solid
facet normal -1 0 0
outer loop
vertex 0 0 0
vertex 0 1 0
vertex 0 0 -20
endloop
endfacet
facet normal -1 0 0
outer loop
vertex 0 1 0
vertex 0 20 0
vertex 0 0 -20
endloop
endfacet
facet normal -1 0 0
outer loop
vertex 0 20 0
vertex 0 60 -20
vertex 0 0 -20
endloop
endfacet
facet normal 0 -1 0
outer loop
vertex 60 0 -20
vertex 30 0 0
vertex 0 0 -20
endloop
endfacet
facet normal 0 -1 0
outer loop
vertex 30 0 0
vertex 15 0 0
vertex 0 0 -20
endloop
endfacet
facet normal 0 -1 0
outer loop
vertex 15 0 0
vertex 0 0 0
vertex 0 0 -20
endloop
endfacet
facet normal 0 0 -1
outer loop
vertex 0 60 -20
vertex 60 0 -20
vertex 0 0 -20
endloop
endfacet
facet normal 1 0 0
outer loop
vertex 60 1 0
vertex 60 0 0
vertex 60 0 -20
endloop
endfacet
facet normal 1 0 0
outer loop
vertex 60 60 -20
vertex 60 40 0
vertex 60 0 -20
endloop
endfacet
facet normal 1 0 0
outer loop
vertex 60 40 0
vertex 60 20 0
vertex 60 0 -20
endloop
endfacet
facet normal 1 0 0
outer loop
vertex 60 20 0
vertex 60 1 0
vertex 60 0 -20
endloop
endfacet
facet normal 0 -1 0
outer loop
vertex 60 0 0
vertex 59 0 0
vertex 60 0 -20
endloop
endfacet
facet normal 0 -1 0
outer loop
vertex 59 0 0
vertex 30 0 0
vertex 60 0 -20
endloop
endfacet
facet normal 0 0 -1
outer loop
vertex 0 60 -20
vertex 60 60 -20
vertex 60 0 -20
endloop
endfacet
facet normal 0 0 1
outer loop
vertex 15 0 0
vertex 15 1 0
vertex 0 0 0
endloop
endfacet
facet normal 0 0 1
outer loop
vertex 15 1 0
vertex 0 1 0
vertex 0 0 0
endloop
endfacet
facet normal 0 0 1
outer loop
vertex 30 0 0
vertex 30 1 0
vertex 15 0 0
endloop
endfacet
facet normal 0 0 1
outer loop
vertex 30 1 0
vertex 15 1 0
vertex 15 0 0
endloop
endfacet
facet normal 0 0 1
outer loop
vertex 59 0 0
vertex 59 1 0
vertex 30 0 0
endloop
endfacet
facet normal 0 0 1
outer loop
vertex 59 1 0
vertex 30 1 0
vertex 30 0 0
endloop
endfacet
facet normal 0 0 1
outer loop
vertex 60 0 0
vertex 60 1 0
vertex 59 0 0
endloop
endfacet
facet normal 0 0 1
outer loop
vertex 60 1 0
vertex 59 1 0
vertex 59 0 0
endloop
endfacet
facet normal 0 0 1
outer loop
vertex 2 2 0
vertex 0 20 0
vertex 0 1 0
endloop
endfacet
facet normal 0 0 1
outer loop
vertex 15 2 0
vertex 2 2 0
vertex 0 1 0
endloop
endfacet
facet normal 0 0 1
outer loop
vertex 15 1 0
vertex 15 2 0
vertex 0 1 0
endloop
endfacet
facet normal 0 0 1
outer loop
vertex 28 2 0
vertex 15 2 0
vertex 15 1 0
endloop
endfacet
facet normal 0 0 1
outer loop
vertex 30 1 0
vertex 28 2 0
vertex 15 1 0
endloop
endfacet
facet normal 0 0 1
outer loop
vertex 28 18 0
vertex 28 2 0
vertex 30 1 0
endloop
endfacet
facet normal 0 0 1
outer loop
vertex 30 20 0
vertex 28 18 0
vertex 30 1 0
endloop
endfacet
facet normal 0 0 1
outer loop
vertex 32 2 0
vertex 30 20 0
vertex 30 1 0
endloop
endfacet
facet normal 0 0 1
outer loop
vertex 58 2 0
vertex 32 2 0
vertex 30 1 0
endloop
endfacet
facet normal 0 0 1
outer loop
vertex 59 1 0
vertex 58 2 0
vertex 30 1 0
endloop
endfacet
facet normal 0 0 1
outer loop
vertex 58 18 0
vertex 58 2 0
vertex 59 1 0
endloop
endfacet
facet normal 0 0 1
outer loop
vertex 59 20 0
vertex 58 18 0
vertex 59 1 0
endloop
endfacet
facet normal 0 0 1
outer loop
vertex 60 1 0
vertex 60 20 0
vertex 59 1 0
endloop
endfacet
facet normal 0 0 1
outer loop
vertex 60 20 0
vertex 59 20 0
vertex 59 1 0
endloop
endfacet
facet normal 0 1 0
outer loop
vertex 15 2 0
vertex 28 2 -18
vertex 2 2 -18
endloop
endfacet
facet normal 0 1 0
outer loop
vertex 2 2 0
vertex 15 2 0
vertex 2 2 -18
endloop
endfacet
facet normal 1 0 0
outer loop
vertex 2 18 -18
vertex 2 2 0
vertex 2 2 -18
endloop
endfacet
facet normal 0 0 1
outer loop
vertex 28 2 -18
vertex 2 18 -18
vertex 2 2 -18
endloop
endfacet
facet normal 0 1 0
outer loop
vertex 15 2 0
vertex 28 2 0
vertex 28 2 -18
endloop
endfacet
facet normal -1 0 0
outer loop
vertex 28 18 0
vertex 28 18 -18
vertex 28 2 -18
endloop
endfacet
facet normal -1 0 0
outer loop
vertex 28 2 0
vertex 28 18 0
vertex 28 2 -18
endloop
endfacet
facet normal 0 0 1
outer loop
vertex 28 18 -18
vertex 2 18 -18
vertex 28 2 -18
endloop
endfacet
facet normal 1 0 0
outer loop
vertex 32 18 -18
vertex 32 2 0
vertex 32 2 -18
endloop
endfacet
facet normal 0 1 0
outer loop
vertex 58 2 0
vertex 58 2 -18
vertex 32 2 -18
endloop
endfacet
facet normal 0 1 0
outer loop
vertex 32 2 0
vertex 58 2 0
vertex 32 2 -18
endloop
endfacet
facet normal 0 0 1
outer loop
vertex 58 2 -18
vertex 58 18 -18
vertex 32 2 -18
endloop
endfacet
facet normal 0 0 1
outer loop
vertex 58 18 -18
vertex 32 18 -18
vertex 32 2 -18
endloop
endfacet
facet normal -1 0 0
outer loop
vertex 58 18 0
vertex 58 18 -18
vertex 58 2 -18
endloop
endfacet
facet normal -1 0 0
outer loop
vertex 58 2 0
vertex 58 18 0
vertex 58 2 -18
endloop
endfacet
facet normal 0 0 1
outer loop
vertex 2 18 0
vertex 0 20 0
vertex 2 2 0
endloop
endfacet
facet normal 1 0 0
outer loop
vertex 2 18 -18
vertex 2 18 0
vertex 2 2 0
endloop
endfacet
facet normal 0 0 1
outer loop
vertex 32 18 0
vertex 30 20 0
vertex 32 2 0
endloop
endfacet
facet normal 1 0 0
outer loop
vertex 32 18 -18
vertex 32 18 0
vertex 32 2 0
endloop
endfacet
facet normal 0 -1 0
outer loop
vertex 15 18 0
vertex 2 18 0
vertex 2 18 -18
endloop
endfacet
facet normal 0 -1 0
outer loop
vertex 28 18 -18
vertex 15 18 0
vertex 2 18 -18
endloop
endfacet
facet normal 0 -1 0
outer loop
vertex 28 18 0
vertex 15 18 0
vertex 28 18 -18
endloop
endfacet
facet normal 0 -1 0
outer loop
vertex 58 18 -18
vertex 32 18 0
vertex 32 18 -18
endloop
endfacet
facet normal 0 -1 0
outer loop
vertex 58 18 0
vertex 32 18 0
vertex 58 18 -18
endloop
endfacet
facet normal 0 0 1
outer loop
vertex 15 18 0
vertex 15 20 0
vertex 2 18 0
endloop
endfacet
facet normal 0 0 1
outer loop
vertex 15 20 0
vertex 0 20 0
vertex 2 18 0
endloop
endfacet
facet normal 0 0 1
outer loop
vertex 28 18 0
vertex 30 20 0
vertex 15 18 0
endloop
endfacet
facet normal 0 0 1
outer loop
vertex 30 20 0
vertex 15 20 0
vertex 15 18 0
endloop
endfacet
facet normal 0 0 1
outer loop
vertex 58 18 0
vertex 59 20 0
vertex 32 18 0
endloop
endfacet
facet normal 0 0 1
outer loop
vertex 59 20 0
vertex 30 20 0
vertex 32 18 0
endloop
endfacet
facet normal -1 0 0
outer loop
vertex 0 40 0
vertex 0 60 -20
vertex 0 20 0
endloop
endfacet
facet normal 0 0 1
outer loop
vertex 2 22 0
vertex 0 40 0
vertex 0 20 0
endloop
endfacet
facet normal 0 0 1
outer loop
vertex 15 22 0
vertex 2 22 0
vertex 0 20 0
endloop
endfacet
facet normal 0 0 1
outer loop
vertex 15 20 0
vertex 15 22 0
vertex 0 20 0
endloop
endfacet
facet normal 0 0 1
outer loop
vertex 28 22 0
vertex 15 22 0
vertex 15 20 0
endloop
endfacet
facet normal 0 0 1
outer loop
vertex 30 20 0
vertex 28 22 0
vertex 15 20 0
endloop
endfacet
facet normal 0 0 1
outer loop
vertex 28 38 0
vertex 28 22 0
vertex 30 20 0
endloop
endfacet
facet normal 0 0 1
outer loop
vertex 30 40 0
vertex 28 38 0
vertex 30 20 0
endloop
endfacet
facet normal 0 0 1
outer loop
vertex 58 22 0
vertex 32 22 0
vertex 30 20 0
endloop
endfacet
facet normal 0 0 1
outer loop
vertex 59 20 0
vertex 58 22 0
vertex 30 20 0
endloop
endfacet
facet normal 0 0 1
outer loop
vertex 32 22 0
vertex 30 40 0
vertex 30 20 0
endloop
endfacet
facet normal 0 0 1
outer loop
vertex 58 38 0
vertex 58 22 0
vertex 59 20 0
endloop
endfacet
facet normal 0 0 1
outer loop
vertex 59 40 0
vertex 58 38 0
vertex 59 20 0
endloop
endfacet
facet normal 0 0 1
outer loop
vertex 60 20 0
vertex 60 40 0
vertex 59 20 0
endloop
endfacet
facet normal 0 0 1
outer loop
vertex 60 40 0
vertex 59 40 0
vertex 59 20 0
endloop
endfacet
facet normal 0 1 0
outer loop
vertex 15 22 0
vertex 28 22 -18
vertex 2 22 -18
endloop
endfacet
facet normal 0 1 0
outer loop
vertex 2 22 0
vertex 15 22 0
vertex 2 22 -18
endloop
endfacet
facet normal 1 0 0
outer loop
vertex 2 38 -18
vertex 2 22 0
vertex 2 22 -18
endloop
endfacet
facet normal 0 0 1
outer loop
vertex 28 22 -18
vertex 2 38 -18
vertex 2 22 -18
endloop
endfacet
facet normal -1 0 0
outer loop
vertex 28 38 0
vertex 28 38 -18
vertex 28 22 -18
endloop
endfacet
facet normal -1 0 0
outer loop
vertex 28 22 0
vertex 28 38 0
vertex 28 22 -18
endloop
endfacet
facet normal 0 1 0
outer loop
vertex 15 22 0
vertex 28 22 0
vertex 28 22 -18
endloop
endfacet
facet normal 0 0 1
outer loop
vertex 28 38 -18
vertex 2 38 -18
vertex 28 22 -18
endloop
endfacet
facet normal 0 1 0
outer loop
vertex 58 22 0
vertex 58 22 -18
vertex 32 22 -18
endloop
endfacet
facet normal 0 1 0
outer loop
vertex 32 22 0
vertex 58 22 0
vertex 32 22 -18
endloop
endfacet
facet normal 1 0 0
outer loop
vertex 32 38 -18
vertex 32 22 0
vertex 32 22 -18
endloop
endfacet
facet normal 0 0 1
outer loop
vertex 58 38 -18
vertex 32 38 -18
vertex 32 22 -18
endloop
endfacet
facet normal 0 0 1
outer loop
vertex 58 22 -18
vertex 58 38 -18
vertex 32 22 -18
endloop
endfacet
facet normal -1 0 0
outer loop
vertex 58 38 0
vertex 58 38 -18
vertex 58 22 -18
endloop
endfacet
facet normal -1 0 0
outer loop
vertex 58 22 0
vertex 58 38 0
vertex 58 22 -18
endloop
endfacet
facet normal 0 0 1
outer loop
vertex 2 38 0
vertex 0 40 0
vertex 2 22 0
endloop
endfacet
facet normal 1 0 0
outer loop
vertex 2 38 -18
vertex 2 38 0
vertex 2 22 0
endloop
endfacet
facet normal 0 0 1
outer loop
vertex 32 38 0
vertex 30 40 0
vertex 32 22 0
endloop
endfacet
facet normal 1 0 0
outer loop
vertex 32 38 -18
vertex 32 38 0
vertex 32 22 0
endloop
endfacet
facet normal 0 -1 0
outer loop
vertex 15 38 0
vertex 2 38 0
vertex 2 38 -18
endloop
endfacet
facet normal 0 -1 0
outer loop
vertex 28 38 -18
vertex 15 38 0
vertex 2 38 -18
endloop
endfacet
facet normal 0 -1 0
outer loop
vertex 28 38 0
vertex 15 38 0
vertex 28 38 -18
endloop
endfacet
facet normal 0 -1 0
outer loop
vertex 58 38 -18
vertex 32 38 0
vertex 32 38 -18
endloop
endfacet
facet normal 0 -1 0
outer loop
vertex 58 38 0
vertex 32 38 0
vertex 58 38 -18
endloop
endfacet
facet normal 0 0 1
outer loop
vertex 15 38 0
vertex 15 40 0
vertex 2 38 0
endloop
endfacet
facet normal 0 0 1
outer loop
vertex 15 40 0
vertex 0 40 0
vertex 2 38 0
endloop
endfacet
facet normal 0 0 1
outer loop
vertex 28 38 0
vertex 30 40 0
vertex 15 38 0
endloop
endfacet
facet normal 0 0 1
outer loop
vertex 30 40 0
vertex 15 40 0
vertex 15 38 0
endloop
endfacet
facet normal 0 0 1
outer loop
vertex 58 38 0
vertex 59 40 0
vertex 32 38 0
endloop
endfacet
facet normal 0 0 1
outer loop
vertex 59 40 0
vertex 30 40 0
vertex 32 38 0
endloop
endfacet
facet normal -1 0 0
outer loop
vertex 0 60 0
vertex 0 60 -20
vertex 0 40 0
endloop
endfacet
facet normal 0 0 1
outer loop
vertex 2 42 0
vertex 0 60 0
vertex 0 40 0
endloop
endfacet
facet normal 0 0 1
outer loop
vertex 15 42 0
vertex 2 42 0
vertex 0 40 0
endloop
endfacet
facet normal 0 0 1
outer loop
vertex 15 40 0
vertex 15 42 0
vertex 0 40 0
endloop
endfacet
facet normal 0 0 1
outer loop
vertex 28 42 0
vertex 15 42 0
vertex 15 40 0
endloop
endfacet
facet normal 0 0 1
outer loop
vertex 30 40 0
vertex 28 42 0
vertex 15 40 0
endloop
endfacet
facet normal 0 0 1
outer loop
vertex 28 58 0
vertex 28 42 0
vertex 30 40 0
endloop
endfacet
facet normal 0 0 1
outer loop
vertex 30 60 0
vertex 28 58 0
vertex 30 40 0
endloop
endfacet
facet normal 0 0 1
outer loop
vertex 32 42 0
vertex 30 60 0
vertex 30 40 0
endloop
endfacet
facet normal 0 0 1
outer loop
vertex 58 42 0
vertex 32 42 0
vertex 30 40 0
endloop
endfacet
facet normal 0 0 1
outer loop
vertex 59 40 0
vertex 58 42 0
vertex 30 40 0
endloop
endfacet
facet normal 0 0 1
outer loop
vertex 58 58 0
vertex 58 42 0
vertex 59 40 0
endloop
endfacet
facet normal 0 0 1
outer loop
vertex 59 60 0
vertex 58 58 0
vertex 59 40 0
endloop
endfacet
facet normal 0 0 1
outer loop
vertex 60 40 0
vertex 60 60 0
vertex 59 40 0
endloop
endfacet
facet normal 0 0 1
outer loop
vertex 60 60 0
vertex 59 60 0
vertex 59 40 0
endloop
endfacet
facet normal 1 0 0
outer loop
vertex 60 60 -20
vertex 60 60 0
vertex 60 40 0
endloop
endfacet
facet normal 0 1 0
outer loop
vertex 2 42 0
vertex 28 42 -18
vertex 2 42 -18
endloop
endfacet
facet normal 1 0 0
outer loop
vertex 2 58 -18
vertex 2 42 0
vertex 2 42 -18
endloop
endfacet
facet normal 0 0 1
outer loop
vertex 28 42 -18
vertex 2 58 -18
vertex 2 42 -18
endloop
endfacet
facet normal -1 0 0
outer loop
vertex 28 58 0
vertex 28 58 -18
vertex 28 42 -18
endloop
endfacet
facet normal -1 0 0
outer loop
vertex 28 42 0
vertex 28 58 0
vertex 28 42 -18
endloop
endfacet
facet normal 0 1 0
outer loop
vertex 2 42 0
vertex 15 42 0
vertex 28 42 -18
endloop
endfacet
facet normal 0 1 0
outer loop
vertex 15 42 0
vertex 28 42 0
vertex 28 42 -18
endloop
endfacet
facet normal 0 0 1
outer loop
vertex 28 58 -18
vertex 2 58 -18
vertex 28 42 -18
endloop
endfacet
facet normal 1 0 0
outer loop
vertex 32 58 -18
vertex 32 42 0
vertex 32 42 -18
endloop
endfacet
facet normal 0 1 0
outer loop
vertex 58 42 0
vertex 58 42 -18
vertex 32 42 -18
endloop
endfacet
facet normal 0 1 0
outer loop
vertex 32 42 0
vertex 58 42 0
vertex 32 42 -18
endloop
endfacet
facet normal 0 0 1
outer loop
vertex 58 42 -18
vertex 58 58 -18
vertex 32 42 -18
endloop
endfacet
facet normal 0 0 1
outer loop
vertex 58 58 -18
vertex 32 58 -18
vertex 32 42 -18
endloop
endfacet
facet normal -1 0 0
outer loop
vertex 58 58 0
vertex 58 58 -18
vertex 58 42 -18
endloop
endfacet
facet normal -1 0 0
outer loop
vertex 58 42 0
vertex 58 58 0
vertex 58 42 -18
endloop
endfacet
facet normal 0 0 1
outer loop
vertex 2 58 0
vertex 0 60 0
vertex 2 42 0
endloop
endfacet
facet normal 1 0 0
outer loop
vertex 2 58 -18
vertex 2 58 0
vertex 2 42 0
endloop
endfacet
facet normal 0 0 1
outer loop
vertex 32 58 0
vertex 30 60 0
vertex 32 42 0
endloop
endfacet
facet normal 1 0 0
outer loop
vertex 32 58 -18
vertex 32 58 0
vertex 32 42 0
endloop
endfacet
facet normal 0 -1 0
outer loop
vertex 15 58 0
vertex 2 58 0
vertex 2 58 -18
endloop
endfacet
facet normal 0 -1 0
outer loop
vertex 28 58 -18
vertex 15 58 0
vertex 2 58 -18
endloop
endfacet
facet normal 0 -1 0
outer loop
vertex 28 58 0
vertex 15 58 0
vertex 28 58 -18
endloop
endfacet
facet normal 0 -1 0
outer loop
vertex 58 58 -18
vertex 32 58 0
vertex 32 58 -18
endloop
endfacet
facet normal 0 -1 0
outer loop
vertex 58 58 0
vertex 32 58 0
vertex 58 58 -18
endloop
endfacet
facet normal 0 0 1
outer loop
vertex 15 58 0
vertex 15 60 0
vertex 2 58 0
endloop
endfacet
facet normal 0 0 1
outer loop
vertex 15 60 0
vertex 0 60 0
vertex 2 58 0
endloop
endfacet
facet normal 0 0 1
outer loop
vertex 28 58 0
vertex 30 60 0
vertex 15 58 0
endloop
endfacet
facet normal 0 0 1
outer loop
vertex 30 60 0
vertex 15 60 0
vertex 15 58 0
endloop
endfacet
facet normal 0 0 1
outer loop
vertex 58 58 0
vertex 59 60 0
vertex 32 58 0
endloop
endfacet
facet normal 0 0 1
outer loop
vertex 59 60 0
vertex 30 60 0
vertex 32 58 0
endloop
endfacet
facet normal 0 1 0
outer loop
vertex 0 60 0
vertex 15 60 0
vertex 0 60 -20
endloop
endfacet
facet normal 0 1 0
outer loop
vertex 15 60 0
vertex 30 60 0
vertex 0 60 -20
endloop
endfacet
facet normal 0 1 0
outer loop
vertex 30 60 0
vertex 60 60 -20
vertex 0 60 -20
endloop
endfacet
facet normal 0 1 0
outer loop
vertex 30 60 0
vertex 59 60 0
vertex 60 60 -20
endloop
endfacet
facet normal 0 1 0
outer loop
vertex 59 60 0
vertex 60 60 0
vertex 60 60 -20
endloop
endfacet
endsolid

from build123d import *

# Parameters (mm, degrees)
SKETCH_1_W          = 60
SKETCH_1_H          = 60
EXTRUDE_1_DEPTH     = 20
SKETCH_2_W          = 26
SKETCH_2_H          = 16
CUT_EXTRUDE_1_DEPTH = 18


with BuildPart() as part:
    # 草图1 → 凸台-拉伸1 (new body)
    with BuildSketch(Plane.XY):
        with Locations((30, 30)):
            Rectangle(SKETCH_1_W, SKETCH_1_H)
    extrude(amount=-EXTRUDE_1_DEPTH)

    # 草图2 → 切除-拉伸1 (cut)
    with BuildSketch(Plane.XY):
        with Locations((15, 50)):
            Rectangle(SKETCH_2_W, SKETCH_2_H)
        with Locations((45, 50)):
            Rectangle(SKETCH_2_W, SKETCH_2_H)
        with Locations((15, 30)):
            Rectangle(SKETCH_2_W, SKETCH_2_H)
        with Locations((45, 30)):
            Rectangle(SKETCH_2_W, SKETCH_2_H)
        with Locations((15, 10)):
            Rectangle(SKETCH_2_W, SKETCH_2_H)
        with Locations((45, 10)):
            Rectangle(SKETCH_2_W, SKETCH_2_H)
    extrude(amount=-CUT_EXTRUDE_1_DEPTH, mode=Mode.SUBTRACT)


solid = part.part
